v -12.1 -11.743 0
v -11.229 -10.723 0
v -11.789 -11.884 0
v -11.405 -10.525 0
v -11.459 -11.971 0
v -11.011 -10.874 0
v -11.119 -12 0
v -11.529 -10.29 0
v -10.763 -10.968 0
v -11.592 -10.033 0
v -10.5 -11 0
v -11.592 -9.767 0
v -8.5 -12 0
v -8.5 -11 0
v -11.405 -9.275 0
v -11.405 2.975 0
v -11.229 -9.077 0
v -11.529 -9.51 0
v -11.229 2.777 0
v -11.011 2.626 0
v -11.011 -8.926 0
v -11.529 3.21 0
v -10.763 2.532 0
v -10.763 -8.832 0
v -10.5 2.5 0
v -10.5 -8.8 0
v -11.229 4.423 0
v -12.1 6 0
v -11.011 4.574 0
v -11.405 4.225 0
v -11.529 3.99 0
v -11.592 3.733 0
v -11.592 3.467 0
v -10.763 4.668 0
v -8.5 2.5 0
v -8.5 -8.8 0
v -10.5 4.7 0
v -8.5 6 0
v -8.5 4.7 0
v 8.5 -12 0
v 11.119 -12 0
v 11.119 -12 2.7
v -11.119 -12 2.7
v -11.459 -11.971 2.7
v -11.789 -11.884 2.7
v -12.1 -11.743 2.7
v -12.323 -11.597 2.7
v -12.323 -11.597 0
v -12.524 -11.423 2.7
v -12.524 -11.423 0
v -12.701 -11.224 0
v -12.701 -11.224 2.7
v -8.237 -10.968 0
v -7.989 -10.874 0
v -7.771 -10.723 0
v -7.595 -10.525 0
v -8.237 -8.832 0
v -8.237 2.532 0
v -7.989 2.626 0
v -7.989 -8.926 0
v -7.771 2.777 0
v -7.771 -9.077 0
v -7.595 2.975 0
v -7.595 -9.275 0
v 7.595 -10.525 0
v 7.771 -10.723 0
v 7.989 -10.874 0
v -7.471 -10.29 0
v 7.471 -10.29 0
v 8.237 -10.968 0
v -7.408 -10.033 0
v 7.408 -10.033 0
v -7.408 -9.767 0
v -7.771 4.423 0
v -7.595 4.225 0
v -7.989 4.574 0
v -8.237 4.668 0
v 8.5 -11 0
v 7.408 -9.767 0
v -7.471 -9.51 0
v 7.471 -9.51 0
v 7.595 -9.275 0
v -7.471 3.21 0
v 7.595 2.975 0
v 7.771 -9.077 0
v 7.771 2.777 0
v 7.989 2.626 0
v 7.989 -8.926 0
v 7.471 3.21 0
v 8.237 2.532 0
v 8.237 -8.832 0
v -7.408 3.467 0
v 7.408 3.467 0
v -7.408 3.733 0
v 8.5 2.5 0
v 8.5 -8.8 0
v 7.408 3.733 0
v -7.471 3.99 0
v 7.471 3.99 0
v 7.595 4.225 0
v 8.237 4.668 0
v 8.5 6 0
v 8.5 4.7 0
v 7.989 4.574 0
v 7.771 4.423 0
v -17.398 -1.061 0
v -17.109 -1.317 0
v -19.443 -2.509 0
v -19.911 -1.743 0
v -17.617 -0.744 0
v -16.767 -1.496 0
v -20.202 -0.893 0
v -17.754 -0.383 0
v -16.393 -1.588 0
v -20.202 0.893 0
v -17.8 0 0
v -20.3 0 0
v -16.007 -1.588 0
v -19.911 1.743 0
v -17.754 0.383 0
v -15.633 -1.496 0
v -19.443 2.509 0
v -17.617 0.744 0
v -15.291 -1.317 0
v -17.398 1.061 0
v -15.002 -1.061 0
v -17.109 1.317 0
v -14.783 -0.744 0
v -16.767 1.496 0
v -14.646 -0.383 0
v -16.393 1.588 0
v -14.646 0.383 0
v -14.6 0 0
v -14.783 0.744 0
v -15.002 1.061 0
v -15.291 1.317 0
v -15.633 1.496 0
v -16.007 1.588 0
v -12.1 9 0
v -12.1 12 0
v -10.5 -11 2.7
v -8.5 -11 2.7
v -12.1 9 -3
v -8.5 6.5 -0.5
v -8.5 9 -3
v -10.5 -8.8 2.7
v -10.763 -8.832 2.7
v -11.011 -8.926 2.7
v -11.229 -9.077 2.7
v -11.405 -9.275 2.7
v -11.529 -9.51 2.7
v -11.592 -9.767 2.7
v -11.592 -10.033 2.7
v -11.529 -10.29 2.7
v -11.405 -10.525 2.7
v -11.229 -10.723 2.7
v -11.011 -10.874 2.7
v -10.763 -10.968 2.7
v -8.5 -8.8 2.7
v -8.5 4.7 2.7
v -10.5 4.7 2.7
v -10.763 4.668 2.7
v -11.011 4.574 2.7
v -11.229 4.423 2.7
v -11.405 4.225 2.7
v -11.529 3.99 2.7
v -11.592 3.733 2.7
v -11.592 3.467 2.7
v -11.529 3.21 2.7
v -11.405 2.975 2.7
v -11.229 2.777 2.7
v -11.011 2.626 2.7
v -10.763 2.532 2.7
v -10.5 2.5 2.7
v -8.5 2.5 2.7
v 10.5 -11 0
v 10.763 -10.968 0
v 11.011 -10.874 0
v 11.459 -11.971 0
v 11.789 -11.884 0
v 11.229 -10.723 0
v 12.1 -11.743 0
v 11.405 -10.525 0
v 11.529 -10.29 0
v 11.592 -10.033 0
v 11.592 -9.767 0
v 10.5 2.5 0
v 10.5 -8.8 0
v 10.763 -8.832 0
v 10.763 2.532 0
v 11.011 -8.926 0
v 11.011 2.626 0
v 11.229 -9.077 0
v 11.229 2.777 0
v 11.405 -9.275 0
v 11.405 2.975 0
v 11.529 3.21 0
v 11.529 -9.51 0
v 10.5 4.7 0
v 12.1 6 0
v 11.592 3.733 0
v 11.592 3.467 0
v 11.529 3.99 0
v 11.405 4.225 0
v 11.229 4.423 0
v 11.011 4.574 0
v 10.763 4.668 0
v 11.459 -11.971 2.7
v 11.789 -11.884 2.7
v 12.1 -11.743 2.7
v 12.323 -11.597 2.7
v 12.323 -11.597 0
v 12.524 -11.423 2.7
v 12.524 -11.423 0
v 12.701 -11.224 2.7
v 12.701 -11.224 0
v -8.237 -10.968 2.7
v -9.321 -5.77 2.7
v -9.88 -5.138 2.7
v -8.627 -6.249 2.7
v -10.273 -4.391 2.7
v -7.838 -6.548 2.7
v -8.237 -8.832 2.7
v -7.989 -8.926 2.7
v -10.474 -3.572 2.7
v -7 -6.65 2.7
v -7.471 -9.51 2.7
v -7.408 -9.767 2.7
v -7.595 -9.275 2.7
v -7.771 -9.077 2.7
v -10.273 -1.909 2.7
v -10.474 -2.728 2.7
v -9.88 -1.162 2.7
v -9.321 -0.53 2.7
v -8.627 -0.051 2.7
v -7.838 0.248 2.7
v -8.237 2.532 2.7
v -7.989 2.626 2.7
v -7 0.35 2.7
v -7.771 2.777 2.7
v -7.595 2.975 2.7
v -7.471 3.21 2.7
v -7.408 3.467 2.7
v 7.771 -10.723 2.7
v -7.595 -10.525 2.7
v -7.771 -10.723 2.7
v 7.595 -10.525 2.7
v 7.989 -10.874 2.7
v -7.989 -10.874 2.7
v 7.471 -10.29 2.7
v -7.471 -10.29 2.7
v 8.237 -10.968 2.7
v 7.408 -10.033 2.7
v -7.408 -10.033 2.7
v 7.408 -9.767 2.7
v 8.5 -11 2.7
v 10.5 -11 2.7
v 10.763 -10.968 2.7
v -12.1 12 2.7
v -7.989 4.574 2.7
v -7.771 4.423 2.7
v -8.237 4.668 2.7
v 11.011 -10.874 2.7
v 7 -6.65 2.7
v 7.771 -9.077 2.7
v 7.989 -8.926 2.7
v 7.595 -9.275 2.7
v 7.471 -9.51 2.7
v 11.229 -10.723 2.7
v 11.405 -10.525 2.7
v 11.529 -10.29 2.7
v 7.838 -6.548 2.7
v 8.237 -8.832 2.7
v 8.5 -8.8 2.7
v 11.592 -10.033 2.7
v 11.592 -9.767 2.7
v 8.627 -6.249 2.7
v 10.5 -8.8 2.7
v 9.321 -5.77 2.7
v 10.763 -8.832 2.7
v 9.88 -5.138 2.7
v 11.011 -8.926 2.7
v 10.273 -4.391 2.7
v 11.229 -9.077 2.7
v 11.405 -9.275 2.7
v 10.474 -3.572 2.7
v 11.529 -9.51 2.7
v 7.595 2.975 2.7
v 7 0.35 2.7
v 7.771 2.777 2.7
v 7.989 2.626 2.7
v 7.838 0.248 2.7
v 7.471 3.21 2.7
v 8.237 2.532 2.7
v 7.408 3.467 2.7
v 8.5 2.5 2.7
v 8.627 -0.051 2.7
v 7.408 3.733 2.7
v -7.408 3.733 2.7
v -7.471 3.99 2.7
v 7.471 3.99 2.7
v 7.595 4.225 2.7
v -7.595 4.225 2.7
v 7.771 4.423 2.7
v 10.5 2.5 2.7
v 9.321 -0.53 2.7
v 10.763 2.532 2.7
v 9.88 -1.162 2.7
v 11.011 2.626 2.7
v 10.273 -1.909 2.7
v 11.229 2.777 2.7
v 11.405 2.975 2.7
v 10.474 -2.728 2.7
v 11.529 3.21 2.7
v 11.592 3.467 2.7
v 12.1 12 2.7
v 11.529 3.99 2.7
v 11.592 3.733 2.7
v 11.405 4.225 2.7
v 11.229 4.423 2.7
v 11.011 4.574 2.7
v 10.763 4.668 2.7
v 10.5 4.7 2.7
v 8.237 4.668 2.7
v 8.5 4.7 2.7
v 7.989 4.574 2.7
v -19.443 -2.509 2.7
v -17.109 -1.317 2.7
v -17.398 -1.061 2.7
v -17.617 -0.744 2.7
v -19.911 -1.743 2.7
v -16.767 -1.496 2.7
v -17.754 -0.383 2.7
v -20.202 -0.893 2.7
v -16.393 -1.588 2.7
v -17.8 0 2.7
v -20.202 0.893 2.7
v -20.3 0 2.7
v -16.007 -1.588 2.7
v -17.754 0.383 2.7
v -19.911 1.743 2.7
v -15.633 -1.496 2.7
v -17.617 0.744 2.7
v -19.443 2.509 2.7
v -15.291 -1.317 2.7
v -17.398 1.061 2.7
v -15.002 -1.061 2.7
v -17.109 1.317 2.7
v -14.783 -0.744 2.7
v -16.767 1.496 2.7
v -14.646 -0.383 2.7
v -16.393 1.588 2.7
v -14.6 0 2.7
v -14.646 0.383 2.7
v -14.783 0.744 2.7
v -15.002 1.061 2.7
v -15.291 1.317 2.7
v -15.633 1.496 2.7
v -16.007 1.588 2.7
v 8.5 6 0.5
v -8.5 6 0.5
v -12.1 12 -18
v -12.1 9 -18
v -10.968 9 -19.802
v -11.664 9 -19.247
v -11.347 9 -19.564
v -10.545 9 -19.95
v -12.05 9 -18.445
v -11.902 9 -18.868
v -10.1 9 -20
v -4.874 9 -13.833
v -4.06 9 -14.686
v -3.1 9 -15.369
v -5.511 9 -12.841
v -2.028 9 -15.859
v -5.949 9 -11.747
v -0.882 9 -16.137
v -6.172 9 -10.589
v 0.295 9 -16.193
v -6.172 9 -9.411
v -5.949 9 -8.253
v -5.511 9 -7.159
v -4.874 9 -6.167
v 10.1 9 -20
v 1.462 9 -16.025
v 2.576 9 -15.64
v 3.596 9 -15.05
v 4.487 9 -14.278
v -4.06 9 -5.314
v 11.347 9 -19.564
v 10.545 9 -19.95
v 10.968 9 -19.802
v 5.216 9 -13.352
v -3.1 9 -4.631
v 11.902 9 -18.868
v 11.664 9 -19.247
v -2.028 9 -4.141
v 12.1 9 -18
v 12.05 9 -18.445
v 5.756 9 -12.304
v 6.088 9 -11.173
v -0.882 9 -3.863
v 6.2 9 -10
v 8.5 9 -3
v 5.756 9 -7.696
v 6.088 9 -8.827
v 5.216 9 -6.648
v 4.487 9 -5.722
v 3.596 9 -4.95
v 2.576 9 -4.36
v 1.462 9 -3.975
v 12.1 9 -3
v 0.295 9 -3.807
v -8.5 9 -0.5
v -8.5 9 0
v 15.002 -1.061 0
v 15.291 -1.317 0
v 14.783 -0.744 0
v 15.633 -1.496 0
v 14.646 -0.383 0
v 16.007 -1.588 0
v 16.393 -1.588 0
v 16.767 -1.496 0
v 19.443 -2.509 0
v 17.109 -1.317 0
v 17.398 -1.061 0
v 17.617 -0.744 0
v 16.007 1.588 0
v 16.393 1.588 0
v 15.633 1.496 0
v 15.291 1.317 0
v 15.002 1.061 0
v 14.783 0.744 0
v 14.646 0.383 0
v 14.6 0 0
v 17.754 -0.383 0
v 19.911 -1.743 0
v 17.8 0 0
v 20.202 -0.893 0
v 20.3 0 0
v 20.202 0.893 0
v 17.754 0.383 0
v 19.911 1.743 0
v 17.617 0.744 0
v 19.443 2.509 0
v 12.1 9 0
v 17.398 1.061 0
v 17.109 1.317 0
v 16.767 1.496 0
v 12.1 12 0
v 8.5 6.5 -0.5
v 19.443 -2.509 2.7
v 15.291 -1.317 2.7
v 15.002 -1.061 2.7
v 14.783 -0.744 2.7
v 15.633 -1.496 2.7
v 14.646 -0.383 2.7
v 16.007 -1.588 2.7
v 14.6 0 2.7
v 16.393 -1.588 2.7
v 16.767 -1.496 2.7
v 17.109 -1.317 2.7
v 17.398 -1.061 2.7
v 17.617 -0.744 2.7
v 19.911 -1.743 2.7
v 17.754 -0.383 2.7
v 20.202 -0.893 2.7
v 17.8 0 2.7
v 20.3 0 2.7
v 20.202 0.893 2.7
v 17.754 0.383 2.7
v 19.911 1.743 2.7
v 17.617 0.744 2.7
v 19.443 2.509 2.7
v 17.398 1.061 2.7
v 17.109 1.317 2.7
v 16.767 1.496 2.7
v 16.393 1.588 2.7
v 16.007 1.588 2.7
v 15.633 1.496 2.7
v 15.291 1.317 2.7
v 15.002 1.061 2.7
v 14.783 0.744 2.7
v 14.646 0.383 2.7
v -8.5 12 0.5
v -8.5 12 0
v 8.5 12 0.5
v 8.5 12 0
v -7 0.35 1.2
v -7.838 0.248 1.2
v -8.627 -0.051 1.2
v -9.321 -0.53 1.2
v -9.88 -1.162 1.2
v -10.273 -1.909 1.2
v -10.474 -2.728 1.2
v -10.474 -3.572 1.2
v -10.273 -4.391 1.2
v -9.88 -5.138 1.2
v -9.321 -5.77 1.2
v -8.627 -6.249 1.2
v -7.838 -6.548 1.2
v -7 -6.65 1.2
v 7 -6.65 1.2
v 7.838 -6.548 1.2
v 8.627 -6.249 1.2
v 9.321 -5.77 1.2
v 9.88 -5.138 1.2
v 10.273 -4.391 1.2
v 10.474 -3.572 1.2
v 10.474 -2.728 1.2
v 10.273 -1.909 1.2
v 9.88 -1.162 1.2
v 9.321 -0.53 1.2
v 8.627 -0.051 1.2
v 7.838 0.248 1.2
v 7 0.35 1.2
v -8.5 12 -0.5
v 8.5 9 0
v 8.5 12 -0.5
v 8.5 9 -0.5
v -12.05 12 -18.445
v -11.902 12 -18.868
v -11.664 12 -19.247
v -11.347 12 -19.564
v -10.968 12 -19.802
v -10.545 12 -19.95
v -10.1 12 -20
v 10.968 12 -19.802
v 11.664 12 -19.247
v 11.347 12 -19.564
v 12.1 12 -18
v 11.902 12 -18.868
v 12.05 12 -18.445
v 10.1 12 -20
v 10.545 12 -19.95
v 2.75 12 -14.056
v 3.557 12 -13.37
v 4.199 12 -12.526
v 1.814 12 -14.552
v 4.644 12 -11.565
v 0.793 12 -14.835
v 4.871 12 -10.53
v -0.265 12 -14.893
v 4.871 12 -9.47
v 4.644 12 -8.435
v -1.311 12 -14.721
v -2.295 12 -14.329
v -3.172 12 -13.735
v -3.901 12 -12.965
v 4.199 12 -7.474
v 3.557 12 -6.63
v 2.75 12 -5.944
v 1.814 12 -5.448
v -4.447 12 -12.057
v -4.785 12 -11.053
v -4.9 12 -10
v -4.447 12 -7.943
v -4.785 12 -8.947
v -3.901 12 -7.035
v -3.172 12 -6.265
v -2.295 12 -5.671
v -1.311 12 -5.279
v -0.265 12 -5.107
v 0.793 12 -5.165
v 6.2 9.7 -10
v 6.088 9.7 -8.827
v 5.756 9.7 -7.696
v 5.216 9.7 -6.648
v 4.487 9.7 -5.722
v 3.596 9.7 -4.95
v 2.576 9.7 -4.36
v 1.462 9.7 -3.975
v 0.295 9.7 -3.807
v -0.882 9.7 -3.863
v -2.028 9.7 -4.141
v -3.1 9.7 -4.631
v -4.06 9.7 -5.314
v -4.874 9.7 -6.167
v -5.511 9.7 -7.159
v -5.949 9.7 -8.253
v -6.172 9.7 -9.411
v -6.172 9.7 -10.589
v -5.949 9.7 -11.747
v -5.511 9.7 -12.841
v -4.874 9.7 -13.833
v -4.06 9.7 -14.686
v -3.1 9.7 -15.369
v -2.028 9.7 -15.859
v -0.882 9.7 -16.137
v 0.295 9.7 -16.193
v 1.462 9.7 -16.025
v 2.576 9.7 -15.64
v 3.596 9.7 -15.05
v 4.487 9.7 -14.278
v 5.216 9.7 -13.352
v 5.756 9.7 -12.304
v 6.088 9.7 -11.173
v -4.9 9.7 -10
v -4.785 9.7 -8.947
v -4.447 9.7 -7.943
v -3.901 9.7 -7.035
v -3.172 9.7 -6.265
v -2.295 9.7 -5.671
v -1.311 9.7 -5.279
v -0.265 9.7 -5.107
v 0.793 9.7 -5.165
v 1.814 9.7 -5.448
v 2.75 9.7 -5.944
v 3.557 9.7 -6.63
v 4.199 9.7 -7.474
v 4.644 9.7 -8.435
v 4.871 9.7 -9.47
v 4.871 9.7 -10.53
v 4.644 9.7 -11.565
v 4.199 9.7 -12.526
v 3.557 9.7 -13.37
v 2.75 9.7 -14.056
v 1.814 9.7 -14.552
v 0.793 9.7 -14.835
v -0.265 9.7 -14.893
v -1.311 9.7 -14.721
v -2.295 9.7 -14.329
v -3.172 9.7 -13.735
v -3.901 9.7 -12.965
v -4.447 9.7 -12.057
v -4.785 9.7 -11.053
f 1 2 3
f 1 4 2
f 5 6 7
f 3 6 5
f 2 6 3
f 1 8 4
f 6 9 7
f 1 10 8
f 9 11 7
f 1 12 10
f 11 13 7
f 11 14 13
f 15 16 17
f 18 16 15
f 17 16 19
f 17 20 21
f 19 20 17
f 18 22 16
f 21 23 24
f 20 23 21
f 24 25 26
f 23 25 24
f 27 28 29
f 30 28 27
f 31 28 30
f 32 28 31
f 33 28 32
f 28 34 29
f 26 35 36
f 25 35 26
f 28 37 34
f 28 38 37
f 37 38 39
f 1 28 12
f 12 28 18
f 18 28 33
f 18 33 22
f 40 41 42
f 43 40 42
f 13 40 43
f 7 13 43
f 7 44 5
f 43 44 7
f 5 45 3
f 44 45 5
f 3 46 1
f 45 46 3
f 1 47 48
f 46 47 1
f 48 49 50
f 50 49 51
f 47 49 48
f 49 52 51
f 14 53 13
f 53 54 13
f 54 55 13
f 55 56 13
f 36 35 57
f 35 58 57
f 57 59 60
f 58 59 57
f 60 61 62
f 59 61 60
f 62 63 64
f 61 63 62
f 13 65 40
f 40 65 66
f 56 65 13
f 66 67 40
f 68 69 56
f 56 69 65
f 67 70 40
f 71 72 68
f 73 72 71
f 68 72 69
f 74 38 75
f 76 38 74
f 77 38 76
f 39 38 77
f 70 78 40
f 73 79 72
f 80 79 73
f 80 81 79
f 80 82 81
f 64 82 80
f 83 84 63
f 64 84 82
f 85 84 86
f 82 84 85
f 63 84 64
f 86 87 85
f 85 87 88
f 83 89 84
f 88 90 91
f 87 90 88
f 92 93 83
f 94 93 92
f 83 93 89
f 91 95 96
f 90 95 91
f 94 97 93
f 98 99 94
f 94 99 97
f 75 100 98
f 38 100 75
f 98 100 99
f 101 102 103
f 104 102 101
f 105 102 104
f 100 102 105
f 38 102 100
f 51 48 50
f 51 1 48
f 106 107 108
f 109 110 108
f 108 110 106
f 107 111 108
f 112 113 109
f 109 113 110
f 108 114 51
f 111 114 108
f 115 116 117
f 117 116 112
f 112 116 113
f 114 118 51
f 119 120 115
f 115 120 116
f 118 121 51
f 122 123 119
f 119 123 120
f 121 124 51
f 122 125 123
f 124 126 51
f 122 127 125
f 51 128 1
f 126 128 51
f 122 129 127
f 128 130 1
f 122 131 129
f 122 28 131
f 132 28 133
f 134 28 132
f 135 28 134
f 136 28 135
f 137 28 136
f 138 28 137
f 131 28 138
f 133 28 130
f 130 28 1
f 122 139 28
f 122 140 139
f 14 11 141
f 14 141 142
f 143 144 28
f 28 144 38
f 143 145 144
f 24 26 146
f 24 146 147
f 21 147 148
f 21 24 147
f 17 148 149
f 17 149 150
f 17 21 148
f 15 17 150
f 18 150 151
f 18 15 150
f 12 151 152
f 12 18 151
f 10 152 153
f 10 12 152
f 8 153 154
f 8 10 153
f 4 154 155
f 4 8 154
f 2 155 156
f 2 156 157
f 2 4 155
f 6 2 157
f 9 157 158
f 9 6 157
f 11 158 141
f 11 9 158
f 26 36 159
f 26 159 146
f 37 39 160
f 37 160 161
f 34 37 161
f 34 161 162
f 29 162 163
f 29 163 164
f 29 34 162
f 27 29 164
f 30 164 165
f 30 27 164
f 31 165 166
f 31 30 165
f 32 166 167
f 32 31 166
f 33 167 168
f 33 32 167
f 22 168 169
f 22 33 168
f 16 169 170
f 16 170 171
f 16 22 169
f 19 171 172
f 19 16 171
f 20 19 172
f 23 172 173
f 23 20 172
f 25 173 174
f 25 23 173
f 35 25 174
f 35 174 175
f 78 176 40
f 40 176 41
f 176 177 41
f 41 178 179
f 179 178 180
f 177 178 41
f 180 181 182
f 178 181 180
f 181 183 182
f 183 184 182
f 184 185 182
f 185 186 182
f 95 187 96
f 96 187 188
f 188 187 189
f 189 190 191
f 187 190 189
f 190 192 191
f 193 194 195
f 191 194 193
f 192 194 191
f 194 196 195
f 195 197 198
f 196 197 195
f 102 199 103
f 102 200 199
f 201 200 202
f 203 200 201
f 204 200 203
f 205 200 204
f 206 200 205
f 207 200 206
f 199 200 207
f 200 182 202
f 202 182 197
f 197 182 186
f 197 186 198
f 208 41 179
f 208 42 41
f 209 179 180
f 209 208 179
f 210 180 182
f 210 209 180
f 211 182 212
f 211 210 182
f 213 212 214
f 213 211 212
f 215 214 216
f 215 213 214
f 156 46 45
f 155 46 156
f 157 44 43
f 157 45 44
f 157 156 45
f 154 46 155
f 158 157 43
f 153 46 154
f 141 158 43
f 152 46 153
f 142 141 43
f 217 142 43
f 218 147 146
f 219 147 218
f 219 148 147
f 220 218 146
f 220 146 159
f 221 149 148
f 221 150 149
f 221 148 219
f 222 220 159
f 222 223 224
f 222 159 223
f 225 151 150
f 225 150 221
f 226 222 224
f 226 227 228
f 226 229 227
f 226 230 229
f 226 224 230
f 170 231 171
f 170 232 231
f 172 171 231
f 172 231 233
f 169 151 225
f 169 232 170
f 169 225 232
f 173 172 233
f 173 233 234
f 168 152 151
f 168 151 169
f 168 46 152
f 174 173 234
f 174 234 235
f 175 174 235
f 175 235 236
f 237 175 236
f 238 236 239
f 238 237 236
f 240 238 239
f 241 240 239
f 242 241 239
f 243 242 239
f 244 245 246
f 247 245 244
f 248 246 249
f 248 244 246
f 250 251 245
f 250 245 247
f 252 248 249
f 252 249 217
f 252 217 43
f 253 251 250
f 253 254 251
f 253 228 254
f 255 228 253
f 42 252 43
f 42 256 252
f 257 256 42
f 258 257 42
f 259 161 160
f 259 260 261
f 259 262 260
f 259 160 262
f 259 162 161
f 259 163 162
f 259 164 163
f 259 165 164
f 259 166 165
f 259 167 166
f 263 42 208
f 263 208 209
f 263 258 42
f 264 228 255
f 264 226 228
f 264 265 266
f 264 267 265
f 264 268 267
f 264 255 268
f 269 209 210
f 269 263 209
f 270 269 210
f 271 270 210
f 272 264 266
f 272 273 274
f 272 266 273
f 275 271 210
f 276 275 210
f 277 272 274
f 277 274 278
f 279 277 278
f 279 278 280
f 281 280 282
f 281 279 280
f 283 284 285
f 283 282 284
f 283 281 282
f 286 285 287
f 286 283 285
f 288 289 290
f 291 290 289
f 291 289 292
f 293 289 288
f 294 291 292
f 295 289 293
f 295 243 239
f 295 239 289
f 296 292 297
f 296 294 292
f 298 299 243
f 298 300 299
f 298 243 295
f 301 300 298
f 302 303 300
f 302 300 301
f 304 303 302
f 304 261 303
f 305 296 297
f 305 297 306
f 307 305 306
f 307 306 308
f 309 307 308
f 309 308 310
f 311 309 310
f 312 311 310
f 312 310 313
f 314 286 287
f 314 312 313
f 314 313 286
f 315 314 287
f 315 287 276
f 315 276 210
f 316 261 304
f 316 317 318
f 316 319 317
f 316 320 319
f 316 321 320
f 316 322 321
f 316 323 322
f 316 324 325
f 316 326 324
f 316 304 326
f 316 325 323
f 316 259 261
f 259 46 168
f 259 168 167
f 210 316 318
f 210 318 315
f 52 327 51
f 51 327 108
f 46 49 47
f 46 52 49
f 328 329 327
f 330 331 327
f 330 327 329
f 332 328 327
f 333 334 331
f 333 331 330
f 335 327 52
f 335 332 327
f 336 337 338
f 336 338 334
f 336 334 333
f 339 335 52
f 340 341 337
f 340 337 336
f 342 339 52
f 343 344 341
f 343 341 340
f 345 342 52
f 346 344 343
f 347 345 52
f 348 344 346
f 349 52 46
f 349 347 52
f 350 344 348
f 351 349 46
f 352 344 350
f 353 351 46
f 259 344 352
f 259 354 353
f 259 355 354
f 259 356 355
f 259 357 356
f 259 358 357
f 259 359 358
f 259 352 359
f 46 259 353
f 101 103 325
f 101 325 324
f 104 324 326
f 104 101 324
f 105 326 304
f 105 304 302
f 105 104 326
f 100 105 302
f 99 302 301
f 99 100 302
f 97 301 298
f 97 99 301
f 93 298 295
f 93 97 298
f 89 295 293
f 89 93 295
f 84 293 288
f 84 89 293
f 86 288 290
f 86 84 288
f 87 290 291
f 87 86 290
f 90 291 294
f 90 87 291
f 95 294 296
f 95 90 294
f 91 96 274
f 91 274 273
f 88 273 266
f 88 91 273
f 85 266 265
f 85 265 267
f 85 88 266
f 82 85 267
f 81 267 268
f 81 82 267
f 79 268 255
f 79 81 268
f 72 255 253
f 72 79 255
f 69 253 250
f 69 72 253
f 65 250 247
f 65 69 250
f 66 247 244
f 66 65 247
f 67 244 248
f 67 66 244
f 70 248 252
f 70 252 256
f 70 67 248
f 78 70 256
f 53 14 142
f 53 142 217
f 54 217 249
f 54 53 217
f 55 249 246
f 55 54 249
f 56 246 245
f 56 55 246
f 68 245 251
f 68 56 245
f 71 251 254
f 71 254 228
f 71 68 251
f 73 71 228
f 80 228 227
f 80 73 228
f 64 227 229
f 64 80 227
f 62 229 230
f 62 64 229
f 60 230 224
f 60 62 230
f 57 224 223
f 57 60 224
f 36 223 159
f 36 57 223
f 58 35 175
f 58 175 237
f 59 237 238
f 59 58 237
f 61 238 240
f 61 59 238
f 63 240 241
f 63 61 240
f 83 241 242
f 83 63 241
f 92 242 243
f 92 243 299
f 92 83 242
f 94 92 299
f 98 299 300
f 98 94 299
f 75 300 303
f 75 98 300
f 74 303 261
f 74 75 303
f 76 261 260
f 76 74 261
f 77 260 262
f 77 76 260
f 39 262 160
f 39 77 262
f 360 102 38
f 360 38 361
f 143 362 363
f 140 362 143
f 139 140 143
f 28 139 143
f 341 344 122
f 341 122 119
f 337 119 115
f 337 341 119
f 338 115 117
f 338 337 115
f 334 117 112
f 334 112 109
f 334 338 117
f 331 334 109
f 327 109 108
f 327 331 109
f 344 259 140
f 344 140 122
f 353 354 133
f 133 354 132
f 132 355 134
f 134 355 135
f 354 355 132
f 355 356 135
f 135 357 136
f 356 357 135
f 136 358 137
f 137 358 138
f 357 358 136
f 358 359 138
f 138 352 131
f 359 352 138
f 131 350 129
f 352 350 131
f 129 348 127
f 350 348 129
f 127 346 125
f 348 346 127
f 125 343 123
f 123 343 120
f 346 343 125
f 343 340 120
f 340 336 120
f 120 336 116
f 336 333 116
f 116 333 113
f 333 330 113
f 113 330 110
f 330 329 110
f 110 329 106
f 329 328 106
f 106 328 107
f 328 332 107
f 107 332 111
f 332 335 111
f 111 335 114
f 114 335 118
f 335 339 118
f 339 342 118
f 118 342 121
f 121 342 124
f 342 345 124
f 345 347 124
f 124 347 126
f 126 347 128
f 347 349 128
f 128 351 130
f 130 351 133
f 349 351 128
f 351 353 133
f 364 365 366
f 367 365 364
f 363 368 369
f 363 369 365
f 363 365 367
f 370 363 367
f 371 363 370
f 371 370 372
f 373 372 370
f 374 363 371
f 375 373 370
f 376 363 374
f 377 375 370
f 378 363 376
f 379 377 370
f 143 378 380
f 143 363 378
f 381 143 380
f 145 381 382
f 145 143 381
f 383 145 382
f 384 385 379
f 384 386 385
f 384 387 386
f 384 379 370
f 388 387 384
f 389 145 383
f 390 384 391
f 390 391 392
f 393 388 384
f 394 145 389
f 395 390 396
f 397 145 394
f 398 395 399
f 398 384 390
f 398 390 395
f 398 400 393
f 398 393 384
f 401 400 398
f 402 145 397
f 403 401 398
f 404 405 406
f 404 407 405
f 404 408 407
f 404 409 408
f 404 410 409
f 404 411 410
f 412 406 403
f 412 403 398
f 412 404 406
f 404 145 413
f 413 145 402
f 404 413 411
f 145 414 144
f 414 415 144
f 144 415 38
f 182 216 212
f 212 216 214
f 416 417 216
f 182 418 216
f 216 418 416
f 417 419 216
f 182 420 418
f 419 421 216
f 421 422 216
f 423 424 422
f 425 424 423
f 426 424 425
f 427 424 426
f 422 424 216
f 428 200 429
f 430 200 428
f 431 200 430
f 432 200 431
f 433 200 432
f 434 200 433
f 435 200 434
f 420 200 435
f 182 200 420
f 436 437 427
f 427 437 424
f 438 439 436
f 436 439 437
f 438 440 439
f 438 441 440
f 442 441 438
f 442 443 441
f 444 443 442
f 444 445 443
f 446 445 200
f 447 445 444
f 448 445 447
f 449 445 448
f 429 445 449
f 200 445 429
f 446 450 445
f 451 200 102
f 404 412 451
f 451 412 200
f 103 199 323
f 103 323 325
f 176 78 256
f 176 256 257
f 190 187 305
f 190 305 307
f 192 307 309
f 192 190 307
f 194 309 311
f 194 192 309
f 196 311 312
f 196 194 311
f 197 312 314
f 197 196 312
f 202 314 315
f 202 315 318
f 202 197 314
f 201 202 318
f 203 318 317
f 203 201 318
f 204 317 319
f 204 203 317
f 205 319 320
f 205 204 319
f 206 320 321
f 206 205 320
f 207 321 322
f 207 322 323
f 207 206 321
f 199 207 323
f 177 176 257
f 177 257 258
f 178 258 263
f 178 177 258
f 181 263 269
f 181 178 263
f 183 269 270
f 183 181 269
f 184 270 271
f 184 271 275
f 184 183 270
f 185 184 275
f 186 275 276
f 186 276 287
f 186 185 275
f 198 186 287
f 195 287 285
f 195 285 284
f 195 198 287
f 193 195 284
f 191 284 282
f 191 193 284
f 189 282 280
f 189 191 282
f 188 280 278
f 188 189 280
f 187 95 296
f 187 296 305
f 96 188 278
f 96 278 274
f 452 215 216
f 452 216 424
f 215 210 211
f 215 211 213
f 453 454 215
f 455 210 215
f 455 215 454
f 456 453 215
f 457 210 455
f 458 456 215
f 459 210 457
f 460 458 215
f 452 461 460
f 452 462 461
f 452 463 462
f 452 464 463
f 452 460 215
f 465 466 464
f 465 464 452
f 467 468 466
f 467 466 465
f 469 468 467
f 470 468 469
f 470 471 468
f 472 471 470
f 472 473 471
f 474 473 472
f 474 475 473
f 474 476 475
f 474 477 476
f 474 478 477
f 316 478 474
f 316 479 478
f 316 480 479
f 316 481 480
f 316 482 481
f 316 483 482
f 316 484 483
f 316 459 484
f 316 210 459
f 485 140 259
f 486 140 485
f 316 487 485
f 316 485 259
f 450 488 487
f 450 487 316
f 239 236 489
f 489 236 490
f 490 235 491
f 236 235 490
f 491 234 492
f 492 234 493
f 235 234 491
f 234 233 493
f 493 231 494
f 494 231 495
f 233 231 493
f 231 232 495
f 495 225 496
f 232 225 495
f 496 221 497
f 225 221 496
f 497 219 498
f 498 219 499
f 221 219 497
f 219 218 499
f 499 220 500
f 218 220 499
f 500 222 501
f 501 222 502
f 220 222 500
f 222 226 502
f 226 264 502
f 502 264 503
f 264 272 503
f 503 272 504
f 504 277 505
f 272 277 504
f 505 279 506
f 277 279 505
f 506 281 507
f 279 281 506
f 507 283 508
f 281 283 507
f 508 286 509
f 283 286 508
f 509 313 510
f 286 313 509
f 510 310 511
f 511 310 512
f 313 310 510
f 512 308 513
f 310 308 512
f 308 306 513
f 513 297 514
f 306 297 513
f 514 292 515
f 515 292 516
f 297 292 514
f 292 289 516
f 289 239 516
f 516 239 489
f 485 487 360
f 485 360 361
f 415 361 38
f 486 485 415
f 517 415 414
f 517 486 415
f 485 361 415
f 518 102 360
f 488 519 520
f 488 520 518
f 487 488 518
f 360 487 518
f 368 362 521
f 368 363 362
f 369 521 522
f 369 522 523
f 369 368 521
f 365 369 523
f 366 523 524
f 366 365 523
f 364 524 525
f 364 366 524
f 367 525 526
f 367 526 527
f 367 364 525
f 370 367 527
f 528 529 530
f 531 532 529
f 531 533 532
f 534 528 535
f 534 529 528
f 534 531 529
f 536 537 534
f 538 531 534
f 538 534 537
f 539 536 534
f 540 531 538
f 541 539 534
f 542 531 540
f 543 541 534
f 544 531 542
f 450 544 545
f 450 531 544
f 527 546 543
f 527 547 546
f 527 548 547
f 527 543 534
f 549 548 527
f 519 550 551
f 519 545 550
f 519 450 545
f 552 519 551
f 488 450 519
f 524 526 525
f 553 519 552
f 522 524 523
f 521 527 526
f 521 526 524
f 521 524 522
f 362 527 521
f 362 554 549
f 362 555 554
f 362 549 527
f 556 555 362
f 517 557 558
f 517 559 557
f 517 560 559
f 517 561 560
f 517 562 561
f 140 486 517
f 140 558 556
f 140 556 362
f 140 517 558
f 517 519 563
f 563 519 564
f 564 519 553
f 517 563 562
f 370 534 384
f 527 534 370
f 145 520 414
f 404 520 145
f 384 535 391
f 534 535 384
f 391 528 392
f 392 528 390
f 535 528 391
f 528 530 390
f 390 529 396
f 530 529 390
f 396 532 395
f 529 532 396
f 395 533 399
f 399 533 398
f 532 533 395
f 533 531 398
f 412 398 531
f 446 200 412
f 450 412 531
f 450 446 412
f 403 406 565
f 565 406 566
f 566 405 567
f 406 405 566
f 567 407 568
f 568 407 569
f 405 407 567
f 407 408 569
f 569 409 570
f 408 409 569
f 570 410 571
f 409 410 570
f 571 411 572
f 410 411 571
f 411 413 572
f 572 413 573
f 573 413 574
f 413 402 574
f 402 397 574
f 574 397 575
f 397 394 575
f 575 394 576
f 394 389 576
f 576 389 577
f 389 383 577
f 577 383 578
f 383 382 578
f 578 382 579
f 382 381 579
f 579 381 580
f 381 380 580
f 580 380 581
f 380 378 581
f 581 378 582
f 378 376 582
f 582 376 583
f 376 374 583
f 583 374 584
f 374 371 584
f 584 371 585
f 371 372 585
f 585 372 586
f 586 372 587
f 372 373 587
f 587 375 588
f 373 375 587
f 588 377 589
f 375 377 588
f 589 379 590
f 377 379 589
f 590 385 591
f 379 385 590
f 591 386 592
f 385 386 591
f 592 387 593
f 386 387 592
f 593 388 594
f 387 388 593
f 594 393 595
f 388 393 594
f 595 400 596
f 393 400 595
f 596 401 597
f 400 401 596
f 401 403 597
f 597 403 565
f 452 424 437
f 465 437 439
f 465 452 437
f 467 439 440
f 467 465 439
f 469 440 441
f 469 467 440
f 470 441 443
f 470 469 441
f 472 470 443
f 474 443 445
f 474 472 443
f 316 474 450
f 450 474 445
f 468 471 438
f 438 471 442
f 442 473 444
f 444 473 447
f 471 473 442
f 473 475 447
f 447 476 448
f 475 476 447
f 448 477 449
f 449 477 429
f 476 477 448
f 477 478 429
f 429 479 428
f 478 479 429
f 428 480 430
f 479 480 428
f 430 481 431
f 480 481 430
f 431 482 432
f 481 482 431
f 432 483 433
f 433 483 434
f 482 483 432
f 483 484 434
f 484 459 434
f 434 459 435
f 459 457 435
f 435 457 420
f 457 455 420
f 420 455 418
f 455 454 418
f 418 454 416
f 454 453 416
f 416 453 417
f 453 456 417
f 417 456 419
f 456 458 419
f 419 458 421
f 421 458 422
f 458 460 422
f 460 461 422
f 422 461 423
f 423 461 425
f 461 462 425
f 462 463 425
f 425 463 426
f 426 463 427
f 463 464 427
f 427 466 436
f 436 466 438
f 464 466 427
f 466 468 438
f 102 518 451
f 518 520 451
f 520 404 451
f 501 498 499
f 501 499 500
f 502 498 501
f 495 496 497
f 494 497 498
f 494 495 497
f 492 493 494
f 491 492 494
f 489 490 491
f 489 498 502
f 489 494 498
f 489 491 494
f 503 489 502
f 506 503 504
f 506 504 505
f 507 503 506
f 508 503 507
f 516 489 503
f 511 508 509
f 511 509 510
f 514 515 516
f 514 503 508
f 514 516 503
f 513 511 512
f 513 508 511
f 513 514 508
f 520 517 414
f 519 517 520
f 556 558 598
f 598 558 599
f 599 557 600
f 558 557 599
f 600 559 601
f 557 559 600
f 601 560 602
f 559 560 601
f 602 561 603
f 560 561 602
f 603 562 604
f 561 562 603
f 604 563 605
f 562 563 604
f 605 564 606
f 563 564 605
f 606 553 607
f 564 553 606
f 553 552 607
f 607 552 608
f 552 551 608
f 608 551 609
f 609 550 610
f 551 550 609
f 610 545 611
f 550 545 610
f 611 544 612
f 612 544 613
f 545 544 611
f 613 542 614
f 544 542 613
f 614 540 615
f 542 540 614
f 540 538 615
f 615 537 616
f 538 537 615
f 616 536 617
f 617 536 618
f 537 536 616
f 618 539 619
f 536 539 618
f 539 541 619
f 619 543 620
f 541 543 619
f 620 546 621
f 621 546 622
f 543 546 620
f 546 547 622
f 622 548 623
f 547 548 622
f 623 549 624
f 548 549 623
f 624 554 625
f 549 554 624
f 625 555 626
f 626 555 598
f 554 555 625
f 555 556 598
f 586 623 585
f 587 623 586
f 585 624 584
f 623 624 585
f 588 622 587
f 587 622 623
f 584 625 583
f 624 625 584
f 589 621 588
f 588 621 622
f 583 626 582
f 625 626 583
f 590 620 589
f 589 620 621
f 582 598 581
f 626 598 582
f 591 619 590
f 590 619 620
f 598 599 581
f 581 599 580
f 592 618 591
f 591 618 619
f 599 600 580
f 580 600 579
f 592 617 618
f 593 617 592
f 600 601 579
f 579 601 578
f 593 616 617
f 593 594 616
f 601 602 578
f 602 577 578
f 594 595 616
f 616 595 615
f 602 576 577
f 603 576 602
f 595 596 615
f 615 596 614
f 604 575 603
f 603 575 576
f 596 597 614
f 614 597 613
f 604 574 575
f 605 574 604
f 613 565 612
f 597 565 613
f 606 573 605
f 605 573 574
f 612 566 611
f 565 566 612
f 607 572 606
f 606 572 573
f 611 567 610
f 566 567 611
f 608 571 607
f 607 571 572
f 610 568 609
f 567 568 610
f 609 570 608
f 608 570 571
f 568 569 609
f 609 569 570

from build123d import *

# Parameters (mm, degrees)
SKETCH_W        = 24.2
SKETCH_H        = 24
PAD_DEPTH       = 2.7
SKETCH001_W     = 24.2
SKETCH001_H     = 3
PAD001_DEPTH    = 20
POCKET_DEPTH    = 1.5
CHAMFER_SIZE    = 3
SKETCH003_W     = 17
SKETCH003_H     = 3
POCKET001_DEPTH = 21.001
SKETCH004_W     = 17
SKETCH004_H     = 1
POCKET002_DEPTH = 6
SKETCH005_R     = 4.9
POCKET003_DEPTH = 2.3
SKETCH006_R     = 6.2
POCKET004_DEPTH = 0.7
SKETCH007_R     = 1.6
PAD002_DEPTH    = 2.7
FILLET_R        = 2


with BuildPart() as part:
    # Sketch → Pad (new body)
    with BuildSketch(Plane.XY):
        Rectangle(SKETCH_W, SKETCH_H)
        with BuildLine():
            ThreePointArc((-10.5, 4.7), (-11.6, 3.6), (-10.5, 2.5))
            Line((-10.5, 2.5), (-8.5, 2.5))
            ThreePointArc((-8.5, 2.5), (-7.4, 3.6), (-8.5, 4.7))
            Line((-8.5, 4.7), (-10.5, 4.7))
        make_face(mode=Mode.SUBTRACT)
        with BuildLine():
            ThreePointArc((-10.5, -8.8), (-11.6, -9.9), (-10.5, -11))
            Line((-10.5, -11), (-8.5, -11))
            ThreePointArc((-8.5, -11), (-7.4, -9.9), (-8.5, -8.8))
            Line((-8.5, -8.8), (-10.5, -8.8))
        make_face(mode=Mode.SUBTRACT)
        with BuildLine():
            ThreePointArc((10.5, -11), (11.6, -9.9), (10.5, -8.8))
            Line((10.5, -8.8), (8.5, -8.8))
            ThreePointArc((8.5, -8.8), (7.4, -9.9), (8.5, -11))
            Line((8.5, -11), (10.5, -11))
        make_face(mode=Mode.SUBTRACT)
        with BuildLine():
            ThreePointArc((10.5, 2.5), (11.6, 3.6), (10.5, 4.7))
            Line((10.5, 4.7), (8.5, 4.7))
            ThreePointArc((8.5, 4.7), (7.4, 3.6), (8.5, 2.5))
            Line((8.5, 2.5), (10.5, 2.5))
        make_face(mode=Mode.SUBTRACT)
    extrude(amount=PAD_DEPTH)

    # Sketch001 (on Face21 of Pad) → Pad001 (join)
    with BuildSketch(Plane(origin=(0, 0, 0), x_dir=(1, 0, 0), z_dir=(0, 0, -1))):
        with Locations((0, -10.5)):
            Rectangle(SKETCH001_W, SKETCH001_H)
    extrude(amount=PAD001_DEPTH)

    # Sketch002 (on Face5 of Pad001) → Pocket (cut)
    with BuildSketch(Plane.XY.offset(2.7)):
        with BuildLine():
            ThreePointArc((-7, 0.35), (-10.5, -3.15), (-7, -6.65))
            Line((-7, -6.65), (7, -6.65))
            ThreePointArc((7, -6.65), (10.5, -3.15), (7, 0.35))
            Line((7, 0.35), (-7, 0.35))
        make_face()
    extrude(amount=-POCKET_DEPTH, mode=Mode.SUBTRACT)

    # Chamfer
    chamfer_edges = [part.edges().sort_by_distance(p)[0] for p in [
        (0, 9, 0),
    ]]
    chamfer(chamfer_edges, length=CHAMFER_SIZE)

    # Sketch003 (on Face25 of Chamfer) → Pocket001 (cut, through all)
    with BuildSketch(Plane.XZ.offset(-9)):
        with Locations((0, -1.5)):
            Rectangle(SKETCH003_W, SKETCH003_H)
    extrude(amount=POCKET001_DEPTH, mode=Mode.SUBTRACT)

    # Sketch004 (on Face6 of Pocket001) → Pocket002 (cut)
    with BuildSketch(Plane(origin=(0, 12, 0), x_dir=(-1, 0, 0), z_dir=(0, 1, 0))):
        Rectangle(SKETCH004_W, SKETCH004_H)
    extrude(amount=-POCKET002_DEPTH, mode=Mode.SUBTRACT)

    # Sketch005 (on Face17 of Pocket002) → Pocket003 (cut)
    with BuildSketch(Plane(origin=(0, 12, 0), x_dir=(-1, 0, 0), z_dir=(0, 1, 0))):
        with Locations((0, -10)):
            Circle(SKETCH005_R)
    extrude(amount=-POCKET003_DEPTH, mode=Mode.SUBTRACT)

    # Sketch006 (on Face15 of Pocket003) → Pocket004 (cut)
    with BuildSketch(Plane.XZ.offset(-9)):
        with Locations((0, -10)):
            Circle(SKETCH006_R)
    extrude(amount=-POCKET004_DEPTH, mode=Mode.SUBTRACT)

    # Sketch007 (on Face5 of Pocket004) → Pad002 (join)
    with BuildSketch(Plane.XY.offset(2.7)):
        with BuildLine():
            ThreePointArc((-19.442827, 2.508799), (-20.3, 0), (-19.442827, -2.508799))
            Line((-12.1, -12), (-19.442827, -2.508799))
            Line((-12.1, -12), (-12.1, 12))
            Line((-12.1, 12), (-19.442827, 2.508799))
        make_face()
        with Locations((-16.2, 0)):
            Circle(SKETCH007_R, mode=Mode.SUBTRACT)
        with BuildLine():
            ThreePointArc((19.442827, -2.508799), (20.3, 0), (19.442827, 2.508799))
            Line((12.1, 12), (19.442827, 2.508799))
            Line((12.1, 12), (12.1, -12))
            Line((12.1, -12), (19.442827, -2.508799))
        make_face()
        with Locations((16.2, 0)):
            Circle(SKETCH007_R, mode=Mode.SUBTRACT)
    extrude(amount=-PAD002_DEPTH)

    # Fillet
    fillet_edges = [part.edges().sort_by_distance(p)[0] for p in [
        (12.1, -12, 1.35),
        (-12.1, -12, 1.35),
        (12.1, 10.5, -20),
        (-12.1, 10.5, -20),
    ]]
    fillet(fillet_edges, radius=FILLET_R)


solid = part.part
